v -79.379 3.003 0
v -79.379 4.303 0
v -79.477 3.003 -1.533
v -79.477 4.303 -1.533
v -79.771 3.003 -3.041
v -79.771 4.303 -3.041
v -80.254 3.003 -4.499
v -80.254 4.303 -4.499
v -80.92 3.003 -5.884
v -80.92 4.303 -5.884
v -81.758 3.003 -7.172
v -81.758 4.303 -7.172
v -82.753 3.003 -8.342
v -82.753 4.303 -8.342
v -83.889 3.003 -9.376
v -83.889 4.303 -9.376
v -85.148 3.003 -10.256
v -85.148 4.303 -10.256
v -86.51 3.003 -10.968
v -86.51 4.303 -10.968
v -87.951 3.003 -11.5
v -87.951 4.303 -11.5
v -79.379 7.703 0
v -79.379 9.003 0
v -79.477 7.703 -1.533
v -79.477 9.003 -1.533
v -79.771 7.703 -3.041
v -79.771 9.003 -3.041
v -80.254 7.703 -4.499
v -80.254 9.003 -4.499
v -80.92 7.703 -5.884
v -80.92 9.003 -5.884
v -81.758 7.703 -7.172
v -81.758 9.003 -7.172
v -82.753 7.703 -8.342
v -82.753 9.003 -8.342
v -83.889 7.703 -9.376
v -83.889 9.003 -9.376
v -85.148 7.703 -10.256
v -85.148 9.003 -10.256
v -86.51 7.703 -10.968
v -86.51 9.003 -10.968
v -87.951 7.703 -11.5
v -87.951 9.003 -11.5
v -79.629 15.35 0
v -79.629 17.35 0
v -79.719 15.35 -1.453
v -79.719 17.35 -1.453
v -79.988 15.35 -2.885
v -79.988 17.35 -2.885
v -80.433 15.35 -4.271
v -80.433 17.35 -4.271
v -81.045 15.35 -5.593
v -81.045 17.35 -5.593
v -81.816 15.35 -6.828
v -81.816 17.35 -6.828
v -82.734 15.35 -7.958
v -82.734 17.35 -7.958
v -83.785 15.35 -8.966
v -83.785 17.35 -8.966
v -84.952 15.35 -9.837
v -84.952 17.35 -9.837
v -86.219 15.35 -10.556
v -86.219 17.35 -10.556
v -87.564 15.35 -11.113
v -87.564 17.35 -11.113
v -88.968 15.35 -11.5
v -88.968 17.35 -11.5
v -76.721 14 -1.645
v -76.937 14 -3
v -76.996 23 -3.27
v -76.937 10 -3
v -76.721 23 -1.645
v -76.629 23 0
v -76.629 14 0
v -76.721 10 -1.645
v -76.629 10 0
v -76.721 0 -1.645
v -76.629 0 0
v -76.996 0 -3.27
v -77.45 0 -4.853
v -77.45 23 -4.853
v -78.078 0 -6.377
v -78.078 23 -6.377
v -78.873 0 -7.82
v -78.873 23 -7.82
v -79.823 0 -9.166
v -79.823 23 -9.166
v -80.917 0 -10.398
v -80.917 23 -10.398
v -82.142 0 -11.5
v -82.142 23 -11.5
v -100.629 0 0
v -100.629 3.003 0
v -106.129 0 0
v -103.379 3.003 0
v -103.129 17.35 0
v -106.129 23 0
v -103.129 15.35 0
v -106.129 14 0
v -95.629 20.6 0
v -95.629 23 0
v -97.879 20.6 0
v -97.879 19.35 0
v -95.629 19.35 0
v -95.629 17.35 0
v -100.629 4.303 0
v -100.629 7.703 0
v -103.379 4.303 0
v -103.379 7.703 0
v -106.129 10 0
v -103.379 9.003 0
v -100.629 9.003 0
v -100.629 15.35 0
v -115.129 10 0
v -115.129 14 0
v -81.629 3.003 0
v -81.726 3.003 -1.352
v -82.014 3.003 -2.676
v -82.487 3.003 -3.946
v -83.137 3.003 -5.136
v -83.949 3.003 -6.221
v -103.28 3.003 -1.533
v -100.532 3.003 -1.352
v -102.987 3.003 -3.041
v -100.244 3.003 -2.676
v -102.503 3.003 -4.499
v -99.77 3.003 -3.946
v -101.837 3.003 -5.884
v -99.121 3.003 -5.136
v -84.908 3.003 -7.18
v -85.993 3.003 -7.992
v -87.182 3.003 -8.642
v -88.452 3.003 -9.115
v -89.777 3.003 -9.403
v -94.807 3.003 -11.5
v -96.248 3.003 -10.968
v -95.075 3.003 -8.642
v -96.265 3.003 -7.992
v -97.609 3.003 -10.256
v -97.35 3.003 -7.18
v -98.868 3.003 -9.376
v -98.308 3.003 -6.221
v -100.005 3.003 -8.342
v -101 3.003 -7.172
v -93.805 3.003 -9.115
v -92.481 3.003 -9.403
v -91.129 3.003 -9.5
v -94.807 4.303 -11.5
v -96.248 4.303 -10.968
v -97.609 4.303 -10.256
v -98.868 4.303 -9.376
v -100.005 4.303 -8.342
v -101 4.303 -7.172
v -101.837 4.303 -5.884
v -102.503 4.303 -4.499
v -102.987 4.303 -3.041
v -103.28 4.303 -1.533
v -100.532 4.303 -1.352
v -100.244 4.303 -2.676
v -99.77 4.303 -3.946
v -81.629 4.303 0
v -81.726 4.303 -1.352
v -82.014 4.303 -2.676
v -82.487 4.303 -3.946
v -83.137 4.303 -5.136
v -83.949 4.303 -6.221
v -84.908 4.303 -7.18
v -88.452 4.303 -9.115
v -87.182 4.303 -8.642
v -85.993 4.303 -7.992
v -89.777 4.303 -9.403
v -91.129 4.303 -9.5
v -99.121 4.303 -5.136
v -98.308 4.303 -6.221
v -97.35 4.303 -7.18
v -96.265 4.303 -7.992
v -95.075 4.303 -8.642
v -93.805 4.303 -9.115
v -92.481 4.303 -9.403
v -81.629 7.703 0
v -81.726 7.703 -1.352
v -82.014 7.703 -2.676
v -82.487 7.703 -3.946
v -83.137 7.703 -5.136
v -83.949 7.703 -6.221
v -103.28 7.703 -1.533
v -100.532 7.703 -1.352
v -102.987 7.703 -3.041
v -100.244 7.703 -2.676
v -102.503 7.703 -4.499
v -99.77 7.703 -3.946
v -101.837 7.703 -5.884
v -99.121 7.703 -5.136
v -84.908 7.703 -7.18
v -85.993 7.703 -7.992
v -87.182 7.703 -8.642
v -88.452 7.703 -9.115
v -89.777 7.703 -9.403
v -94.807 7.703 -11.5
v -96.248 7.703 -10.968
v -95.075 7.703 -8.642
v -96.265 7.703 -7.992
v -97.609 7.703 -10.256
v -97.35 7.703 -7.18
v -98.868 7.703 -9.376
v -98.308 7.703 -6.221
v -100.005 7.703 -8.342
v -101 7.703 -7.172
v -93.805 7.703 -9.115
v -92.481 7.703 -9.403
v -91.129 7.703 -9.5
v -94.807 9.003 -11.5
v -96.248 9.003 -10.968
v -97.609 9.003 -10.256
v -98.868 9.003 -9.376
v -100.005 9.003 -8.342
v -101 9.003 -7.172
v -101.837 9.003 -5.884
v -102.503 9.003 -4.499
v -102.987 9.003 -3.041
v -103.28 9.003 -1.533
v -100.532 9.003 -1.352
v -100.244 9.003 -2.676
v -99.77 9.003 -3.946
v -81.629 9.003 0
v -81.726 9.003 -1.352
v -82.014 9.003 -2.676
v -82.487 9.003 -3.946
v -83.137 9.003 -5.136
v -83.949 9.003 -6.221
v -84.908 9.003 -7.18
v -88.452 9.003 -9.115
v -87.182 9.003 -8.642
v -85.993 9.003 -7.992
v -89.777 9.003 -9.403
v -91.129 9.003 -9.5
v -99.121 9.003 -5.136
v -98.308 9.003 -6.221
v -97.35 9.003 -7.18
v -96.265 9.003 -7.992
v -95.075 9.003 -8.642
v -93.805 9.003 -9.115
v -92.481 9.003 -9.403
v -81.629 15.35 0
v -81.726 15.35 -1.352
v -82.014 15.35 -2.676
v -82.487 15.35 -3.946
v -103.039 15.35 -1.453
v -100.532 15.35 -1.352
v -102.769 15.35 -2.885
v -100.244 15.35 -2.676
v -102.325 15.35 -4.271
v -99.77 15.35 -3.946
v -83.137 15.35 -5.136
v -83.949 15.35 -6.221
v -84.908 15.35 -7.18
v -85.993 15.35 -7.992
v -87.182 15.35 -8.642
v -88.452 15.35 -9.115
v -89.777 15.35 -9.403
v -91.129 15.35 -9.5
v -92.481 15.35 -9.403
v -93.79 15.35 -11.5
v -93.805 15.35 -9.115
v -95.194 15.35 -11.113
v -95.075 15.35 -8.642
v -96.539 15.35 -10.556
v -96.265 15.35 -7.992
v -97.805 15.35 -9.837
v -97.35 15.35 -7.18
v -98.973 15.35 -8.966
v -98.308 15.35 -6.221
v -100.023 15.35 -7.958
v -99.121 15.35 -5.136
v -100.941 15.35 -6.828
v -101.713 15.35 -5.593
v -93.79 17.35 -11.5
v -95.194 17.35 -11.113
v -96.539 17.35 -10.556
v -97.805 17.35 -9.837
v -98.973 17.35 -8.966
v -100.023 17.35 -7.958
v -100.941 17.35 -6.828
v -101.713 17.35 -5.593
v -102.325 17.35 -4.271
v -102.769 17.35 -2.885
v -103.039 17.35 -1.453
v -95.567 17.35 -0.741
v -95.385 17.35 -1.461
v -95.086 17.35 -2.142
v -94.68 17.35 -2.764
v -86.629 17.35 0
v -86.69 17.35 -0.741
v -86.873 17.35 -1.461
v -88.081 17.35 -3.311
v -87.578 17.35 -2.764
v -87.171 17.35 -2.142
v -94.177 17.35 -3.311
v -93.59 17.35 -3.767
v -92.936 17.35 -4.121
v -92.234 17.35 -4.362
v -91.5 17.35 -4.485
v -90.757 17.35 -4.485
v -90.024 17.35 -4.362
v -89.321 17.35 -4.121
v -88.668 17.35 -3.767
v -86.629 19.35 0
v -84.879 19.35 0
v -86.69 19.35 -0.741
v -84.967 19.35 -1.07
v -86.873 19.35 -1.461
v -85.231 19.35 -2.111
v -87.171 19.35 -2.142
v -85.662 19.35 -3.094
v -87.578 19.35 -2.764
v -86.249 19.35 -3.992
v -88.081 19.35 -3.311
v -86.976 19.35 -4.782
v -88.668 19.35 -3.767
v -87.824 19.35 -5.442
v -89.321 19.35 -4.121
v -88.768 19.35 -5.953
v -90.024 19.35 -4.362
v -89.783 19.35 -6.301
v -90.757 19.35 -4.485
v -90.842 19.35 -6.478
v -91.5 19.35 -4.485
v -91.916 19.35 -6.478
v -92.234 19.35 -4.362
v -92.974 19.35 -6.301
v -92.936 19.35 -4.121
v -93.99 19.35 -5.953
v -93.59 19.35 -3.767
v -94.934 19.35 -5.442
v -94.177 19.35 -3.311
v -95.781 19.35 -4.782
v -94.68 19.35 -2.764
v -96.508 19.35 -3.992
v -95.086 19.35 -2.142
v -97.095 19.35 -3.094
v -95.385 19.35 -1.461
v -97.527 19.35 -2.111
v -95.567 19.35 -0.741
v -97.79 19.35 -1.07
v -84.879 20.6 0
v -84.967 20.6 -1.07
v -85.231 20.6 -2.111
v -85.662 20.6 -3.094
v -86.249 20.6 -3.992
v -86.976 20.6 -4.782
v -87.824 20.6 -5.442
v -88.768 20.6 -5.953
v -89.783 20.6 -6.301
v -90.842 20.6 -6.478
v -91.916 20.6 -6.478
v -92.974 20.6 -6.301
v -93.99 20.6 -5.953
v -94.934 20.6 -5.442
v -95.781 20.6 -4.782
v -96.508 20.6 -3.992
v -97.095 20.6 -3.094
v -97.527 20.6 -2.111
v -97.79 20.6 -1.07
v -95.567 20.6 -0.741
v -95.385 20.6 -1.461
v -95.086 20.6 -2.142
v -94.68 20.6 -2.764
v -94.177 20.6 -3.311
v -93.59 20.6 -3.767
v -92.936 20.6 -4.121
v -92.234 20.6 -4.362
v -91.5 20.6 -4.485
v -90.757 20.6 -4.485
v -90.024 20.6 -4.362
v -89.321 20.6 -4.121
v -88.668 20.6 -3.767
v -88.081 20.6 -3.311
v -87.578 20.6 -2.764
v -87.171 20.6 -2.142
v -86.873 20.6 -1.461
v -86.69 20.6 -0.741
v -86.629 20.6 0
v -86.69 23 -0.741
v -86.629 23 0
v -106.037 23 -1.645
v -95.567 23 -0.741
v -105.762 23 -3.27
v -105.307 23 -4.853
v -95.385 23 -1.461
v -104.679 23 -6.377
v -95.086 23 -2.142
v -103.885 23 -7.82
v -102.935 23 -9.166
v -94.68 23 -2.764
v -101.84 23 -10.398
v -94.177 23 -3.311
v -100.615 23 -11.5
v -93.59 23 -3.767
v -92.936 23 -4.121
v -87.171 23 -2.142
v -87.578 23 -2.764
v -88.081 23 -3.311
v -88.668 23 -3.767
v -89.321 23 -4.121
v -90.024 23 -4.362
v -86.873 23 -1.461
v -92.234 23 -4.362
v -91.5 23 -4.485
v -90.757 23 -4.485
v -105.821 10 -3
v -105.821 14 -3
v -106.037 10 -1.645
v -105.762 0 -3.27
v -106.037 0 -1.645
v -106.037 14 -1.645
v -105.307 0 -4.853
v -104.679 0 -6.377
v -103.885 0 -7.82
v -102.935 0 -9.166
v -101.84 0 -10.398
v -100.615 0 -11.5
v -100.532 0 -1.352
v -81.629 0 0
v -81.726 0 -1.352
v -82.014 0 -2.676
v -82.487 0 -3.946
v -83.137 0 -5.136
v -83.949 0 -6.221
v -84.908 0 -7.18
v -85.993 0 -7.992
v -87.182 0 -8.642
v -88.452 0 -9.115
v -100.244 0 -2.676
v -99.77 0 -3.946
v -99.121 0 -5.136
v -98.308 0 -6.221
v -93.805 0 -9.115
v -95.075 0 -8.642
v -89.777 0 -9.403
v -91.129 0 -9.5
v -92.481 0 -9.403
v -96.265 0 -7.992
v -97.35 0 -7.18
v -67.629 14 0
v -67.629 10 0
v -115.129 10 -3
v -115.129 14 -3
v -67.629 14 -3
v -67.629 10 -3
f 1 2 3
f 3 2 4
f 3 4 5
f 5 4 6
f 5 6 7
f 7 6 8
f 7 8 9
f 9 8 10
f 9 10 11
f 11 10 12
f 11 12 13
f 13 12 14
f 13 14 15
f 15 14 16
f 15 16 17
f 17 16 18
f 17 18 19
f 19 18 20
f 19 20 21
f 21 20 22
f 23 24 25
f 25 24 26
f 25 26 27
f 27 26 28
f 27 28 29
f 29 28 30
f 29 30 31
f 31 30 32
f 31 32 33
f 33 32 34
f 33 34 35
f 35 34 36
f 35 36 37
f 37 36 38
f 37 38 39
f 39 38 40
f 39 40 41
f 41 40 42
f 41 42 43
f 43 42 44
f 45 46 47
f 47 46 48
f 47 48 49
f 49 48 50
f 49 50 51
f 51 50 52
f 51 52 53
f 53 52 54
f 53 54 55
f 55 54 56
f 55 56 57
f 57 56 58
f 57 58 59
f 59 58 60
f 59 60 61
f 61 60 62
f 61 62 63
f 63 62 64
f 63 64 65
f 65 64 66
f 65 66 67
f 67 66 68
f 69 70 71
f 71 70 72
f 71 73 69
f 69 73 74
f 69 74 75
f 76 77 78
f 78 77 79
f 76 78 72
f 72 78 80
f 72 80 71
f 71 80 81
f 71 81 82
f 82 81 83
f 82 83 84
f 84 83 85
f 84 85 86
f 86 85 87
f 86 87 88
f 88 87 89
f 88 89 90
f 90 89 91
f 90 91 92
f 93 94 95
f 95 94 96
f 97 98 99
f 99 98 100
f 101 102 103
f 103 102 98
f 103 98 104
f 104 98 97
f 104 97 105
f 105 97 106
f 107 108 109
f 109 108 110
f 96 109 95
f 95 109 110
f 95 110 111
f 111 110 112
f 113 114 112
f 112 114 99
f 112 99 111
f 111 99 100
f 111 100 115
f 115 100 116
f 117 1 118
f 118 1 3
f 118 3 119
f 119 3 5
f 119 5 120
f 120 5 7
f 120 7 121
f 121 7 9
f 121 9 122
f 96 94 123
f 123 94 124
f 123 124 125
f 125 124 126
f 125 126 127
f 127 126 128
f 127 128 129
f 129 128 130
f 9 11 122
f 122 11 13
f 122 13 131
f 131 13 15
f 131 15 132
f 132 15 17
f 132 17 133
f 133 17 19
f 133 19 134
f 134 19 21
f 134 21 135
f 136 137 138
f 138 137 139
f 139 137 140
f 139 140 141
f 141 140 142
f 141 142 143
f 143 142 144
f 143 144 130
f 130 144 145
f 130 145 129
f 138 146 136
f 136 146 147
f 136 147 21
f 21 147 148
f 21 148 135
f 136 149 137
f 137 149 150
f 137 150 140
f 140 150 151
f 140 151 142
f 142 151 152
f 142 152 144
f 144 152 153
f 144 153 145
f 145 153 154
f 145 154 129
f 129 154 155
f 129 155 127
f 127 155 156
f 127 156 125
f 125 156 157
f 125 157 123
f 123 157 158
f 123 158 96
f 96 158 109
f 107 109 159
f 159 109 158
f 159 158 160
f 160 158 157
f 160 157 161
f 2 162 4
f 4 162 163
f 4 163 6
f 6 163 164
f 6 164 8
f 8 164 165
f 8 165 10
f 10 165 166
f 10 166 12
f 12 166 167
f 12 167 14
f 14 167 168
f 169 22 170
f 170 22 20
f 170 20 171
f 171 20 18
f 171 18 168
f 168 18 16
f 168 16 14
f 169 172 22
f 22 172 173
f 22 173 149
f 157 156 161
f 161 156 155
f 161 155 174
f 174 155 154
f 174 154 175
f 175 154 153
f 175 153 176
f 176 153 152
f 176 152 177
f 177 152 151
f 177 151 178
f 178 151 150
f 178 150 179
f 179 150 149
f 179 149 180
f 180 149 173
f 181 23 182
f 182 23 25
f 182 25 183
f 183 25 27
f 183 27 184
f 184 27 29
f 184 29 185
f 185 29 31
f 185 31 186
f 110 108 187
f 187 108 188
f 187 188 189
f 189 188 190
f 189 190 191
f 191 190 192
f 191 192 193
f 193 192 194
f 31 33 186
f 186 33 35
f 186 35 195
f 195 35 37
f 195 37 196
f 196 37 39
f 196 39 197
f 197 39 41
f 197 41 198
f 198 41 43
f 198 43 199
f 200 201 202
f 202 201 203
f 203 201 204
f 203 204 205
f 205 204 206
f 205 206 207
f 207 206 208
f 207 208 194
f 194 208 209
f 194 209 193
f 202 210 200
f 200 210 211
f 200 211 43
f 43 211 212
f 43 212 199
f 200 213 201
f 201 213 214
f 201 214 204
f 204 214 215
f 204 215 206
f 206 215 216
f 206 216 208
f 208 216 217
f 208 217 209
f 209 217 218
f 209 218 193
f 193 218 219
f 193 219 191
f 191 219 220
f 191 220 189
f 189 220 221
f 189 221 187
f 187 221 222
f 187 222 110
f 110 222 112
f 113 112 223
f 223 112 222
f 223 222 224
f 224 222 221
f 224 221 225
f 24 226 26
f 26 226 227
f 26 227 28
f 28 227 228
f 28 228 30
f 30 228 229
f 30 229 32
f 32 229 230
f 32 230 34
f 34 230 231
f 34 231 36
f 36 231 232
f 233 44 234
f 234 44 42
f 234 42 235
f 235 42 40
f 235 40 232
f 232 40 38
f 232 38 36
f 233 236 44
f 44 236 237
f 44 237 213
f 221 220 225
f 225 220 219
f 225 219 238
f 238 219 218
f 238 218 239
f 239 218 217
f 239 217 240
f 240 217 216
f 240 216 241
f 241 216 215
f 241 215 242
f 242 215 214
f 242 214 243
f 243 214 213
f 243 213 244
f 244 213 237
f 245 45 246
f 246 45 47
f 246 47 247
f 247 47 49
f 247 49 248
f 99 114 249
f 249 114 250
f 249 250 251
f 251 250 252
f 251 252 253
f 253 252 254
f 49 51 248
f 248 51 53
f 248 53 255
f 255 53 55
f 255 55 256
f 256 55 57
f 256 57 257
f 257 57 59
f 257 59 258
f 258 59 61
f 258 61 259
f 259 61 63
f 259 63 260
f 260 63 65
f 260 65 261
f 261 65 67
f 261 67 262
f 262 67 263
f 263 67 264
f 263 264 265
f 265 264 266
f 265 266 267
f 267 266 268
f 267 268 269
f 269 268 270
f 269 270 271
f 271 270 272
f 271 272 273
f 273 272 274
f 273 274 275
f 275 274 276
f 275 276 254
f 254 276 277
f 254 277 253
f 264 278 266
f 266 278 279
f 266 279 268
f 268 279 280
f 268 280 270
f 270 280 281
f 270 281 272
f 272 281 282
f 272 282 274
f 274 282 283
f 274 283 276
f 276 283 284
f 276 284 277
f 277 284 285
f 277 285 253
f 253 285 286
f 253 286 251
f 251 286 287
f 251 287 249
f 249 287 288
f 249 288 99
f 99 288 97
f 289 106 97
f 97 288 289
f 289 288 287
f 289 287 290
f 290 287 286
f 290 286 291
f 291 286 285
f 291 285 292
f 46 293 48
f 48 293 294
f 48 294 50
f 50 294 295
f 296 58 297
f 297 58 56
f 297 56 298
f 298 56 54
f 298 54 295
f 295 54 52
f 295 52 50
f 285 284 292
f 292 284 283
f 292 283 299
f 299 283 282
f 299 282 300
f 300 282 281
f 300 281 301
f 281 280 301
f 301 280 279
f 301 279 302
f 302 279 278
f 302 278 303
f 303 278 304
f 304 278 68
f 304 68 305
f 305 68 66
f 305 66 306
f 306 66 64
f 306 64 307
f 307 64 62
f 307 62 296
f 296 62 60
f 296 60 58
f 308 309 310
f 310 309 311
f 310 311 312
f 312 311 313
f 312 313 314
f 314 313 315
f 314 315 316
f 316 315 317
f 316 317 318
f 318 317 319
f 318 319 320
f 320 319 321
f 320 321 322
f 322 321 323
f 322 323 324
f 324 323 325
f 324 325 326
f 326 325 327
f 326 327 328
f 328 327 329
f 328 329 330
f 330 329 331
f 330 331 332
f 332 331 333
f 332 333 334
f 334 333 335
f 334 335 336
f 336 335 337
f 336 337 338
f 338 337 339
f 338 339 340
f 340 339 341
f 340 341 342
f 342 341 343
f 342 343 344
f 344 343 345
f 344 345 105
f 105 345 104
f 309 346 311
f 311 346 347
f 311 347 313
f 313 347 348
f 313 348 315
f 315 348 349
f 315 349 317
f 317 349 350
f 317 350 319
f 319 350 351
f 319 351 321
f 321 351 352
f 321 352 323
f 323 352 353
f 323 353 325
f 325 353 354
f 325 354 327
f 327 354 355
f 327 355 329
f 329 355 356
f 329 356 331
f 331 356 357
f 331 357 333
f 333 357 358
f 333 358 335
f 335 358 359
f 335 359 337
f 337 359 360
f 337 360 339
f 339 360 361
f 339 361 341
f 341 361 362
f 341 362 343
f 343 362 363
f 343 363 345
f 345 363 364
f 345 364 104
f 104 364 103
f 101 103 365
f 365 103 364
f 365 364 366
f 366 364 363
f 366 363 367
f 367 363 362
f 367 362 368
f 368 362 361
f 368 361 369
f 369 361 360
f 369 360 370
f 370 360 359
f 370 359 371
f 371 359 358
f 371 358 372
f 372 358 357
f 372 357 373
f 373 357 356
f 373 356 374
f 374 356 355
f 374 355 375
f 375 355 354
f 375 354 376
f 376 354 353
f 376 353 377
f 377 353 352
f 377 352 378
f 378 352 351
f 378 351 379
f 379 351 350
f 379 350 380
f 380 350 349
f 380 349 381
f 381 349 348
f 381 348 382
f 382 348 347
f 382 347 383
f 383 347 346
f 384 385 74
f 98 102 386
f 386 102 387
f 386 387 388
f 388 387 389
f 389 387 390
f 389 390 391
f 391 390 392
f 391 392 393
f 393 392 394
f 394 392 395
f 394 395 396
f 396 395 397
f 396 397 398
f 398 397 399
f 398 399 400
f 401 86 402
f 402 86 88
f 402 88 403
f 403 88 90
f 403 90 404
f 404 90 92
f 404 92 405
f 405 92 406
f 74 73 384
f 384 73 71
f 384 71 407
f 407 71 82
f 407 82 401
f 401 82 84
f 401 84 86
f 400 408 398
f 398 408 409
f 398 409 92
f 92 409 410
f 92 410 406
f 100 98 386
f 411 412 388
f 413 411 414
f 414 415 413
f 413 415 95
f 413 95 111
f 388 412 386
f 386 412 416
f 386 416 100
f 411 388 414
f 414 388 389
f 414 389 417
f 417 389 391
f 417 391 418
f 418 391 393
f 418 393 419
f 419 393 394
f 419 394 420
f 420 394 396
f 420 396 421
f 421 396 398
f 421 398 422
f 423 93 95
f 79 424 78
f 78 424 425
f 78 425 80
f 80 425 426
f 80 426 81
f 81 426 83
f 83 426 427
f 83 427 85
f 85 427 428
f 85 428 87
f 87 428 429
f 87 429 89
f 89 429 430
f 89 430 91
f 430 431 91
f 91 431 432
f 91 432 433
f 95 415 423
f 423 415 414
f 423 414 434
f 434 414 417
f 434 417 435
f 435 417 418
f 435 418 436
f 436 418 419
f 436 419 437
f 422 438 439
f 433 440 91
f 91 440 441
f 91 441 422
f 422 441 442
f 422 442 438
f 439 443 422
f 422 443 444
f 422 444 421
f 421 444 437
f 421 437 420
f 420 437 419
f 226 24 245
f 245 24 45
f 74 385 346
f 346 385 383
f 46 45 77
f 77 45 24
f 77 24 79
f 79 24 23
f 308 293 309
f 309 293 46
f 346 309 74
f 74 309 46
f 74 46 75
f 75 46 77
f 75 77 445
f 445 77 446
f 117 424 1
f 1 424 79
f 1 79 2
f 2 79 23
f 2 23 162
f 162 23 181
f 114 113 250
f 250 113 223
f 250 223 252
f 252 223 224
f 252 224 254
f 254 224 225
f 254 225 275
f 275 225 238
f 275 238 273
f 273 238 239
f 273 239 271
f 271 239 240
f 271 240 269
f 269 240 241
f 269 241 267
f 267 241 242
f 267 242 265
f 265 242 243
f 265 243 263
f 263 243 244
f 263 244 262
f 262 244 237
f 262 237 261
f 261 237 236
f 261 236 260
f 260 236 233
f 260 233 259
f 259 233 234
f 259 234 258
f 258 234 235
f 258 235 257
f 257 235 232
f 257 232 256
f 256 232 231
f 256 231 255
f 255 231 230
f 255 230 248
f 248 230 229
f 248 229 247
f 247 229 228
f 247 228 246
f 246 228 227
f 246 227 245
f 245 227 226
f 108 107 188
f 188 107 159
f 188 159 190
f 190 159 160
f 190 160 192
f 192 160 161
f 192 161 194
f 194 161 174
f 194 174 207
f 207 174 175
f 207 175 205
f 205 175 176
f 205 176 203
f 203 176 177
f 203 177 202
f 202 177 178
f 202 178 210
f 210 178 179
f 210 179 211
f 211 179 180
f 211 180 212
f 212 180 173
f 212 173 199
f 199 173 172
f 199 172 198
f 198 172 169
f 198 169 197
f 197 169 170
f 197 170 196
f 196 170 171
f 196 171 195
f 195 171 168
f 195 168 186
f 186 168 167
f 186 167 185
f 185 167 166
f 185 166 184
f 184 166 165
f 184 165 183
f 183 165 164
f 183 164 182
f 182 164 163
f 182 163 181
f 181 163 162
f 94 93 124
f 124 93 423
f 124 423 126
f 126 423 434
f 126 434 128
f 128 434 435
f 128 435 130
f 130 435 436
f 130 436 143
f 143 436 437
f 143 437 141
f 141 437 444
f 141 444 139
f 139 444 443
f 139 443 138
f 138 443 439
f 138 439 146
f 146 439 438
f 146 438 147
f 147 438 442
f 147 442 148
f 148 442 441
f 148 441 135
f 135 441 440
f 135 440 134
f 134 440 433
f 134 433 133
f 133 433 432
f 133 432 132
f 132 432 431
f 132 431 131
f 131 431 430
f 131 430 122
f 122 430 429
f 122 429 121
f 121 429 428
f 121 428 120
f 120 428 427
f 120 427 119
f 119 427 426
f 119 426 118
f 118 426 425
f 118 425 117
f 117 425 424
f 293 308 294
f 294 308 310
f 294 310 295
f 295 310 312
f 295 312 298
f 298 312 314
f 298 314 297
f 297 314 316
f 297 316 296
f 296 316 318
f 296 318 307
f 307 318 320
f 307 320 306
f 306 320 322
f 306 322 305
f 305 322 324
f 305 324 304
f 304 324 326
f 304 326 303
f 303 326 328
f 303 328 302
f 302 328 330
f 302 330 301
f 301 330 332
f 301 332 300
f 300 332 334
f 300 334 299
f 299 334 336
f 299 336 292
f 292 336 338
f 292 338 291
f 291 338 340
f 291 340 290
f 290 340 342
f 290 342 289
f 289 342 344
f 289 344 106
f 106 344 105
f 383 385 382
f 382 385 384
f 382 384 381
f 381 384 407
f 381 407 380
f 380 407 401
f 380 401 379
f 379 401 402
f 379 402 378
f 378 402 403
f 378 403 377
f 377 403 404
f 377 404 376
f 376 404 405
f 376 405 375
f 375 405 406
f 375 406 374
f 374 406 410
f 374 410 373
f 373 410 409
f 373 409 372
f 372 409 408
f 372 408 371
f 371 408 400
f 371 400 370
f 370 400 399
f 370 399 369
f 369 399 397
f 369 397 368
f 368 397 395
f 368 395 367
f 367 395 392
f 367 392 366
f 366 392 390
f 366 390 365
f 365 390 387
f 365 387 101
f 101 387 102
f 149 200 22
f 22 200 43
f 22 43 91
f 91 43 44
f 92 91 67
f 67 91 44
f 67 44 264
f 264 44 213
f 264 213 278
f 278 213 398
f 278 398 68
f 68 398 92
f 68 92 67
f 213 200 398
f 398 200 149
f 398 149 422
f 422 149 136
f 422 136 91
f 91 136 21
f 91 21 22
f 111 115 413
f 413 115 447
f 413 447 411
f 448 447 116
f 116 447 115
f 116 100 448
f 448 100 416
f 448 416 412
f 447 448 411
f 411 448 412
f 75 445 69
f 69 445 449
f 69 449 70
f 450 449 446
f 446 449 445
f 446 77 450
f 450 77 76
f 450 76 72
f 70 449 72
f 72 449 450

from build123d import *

# Parameters (mm, degrees)
REVOLUCI_N1_ANGLE       = 180
CORTAR_EXTRUIR1_DEPTH   = 17
CORTAR_EXTRUIR2_START   = -5.65
CORTAR_EXTRUIR2_DEPTH   = 5.65
CORTAR_EXTRUIR3_START   = -23
CROQUIS4_W              = 20.036929734
CROQUIS4_H              = 3.3102989
CORTAR_EXTRUIR3_DEPTH   = 23
CROQUIS5_W              = 1
CROQUIS5_H              = 4
CORTAR_EXTRUIR4_DEPTH   = 3
CROQUIS6_W              = 10
CROQUIS6_H              = 4
SALIENTE_EXTRUIR1_DEPTH = 3


with BuildPart() as part:
    # Croquis1 → Revolución1 (revolve)
    with BuildSketch(Plane.XY):
        Polygon((-91.628819856, 0), (-106.128819856, 0), (-106.128819856, 23), (-91.378819856, 23), (-91.378819856, 20.6), (-97.878819856, 20.6), (-97.878819856, 19.35), (-91.378819856, 19.35), (-91.378819856, 17.35), (-103.128819856, 17.35), (-103.128819856, 15.35), (-91.628819856, 15.35), (-91.628819856, 9.003019764), (-103.378819856, 9.003019764), (-103.378819856, 7.703019764), (-91.628819856, 7.703019764), (-91.628819856, 4.303019764), (-103.378819856, 4.303019764), (-103.378819856, 3.003019764), (-91.628819856, 3.003019764), align=None)
    revolve(axis=Axis((-91.378819856, 17.35, 0), (0, -1, 0)), revolution_arc=REVOLUCI_N1_ANGLE)

    # Croquis2 → Cortar-Extruir1 (cut)
    with BuildSketch(Plane.XZ):
        with BuildLine():
            Line((-100.628819856, 0), (-81.628819856, 0))
            ThreePointArc((-81.628819856, 0), (-91.128819856, -9.5), (-100.628819856, 0))
        make_face()
    extrude(amount=-CORTAR_EXTRUIR1_DEPTH, mode=Mode.SUBTRACT)

    # Croquis3 → Cortar-Extruir2 (cut)
    with BuildSketch(Plane(origin=(0, 23, 0), x_dir=(1, 0, 0), z_dir=(0, 1, 0)).offset(CORTAR_EXTRUIR2_START)):
        with BuildLine():
            Line((-86.628819856, 0), (-95.628819856, 0))
            ThreePointArc((-95.628819856, 0), (-91.128819856, 4.5), (-86.628819856, 0))
        make_face()
    extrude(amount=CORTAR_EXTRUIR2_DEPTH, mode=Mode.SUBTRACT)

    # Croquis4 → Cortar-Extruir3 (cut)
    with BuildSketch(Plane.XZ.offset(CORTAR_EXTRUIR3_START)):
        with Locations((-91.493585316, -13.15514945)):
            Rectangle(CROQUIS4_W, CROQUIS4_H)
    extrude(amount=CORTAR_EXTRUIR3_DEPTH, mode=Mode.SUBTRACT)

    # Croquis5 → Cortar-Extruir4 (cut)
    with BuildSketch(Plane.XY):
        with Locations((-105.628819856, 12)):
            Rectangle(CROQUIS5_W, CROQUIS5_H)
        with Locations((-77.128819856, 12)):
            Rectangle(CROQUIS5_W, CROQUIS5_H)
    extrude(amount=-CORTAR_EXTRUIR4_DEPTH, mode=Mode.SUBTRACT)

    # Croquis6 → Saliente-Extruir1 (add)
    with BuildSketch(Plane.XY):
        with Locations((-110.128819856, 12)):
            Rectangle(CROQUIS6_W, CROQUIS6_H)
        with Locations((-72.628819856, 12)):
            Rectangle(CROQUIS6_W, CROQUIS6_H)
    extrude(amount=-SALIENTE_EXTRUIR1_DEPTH)


solid = part.part
